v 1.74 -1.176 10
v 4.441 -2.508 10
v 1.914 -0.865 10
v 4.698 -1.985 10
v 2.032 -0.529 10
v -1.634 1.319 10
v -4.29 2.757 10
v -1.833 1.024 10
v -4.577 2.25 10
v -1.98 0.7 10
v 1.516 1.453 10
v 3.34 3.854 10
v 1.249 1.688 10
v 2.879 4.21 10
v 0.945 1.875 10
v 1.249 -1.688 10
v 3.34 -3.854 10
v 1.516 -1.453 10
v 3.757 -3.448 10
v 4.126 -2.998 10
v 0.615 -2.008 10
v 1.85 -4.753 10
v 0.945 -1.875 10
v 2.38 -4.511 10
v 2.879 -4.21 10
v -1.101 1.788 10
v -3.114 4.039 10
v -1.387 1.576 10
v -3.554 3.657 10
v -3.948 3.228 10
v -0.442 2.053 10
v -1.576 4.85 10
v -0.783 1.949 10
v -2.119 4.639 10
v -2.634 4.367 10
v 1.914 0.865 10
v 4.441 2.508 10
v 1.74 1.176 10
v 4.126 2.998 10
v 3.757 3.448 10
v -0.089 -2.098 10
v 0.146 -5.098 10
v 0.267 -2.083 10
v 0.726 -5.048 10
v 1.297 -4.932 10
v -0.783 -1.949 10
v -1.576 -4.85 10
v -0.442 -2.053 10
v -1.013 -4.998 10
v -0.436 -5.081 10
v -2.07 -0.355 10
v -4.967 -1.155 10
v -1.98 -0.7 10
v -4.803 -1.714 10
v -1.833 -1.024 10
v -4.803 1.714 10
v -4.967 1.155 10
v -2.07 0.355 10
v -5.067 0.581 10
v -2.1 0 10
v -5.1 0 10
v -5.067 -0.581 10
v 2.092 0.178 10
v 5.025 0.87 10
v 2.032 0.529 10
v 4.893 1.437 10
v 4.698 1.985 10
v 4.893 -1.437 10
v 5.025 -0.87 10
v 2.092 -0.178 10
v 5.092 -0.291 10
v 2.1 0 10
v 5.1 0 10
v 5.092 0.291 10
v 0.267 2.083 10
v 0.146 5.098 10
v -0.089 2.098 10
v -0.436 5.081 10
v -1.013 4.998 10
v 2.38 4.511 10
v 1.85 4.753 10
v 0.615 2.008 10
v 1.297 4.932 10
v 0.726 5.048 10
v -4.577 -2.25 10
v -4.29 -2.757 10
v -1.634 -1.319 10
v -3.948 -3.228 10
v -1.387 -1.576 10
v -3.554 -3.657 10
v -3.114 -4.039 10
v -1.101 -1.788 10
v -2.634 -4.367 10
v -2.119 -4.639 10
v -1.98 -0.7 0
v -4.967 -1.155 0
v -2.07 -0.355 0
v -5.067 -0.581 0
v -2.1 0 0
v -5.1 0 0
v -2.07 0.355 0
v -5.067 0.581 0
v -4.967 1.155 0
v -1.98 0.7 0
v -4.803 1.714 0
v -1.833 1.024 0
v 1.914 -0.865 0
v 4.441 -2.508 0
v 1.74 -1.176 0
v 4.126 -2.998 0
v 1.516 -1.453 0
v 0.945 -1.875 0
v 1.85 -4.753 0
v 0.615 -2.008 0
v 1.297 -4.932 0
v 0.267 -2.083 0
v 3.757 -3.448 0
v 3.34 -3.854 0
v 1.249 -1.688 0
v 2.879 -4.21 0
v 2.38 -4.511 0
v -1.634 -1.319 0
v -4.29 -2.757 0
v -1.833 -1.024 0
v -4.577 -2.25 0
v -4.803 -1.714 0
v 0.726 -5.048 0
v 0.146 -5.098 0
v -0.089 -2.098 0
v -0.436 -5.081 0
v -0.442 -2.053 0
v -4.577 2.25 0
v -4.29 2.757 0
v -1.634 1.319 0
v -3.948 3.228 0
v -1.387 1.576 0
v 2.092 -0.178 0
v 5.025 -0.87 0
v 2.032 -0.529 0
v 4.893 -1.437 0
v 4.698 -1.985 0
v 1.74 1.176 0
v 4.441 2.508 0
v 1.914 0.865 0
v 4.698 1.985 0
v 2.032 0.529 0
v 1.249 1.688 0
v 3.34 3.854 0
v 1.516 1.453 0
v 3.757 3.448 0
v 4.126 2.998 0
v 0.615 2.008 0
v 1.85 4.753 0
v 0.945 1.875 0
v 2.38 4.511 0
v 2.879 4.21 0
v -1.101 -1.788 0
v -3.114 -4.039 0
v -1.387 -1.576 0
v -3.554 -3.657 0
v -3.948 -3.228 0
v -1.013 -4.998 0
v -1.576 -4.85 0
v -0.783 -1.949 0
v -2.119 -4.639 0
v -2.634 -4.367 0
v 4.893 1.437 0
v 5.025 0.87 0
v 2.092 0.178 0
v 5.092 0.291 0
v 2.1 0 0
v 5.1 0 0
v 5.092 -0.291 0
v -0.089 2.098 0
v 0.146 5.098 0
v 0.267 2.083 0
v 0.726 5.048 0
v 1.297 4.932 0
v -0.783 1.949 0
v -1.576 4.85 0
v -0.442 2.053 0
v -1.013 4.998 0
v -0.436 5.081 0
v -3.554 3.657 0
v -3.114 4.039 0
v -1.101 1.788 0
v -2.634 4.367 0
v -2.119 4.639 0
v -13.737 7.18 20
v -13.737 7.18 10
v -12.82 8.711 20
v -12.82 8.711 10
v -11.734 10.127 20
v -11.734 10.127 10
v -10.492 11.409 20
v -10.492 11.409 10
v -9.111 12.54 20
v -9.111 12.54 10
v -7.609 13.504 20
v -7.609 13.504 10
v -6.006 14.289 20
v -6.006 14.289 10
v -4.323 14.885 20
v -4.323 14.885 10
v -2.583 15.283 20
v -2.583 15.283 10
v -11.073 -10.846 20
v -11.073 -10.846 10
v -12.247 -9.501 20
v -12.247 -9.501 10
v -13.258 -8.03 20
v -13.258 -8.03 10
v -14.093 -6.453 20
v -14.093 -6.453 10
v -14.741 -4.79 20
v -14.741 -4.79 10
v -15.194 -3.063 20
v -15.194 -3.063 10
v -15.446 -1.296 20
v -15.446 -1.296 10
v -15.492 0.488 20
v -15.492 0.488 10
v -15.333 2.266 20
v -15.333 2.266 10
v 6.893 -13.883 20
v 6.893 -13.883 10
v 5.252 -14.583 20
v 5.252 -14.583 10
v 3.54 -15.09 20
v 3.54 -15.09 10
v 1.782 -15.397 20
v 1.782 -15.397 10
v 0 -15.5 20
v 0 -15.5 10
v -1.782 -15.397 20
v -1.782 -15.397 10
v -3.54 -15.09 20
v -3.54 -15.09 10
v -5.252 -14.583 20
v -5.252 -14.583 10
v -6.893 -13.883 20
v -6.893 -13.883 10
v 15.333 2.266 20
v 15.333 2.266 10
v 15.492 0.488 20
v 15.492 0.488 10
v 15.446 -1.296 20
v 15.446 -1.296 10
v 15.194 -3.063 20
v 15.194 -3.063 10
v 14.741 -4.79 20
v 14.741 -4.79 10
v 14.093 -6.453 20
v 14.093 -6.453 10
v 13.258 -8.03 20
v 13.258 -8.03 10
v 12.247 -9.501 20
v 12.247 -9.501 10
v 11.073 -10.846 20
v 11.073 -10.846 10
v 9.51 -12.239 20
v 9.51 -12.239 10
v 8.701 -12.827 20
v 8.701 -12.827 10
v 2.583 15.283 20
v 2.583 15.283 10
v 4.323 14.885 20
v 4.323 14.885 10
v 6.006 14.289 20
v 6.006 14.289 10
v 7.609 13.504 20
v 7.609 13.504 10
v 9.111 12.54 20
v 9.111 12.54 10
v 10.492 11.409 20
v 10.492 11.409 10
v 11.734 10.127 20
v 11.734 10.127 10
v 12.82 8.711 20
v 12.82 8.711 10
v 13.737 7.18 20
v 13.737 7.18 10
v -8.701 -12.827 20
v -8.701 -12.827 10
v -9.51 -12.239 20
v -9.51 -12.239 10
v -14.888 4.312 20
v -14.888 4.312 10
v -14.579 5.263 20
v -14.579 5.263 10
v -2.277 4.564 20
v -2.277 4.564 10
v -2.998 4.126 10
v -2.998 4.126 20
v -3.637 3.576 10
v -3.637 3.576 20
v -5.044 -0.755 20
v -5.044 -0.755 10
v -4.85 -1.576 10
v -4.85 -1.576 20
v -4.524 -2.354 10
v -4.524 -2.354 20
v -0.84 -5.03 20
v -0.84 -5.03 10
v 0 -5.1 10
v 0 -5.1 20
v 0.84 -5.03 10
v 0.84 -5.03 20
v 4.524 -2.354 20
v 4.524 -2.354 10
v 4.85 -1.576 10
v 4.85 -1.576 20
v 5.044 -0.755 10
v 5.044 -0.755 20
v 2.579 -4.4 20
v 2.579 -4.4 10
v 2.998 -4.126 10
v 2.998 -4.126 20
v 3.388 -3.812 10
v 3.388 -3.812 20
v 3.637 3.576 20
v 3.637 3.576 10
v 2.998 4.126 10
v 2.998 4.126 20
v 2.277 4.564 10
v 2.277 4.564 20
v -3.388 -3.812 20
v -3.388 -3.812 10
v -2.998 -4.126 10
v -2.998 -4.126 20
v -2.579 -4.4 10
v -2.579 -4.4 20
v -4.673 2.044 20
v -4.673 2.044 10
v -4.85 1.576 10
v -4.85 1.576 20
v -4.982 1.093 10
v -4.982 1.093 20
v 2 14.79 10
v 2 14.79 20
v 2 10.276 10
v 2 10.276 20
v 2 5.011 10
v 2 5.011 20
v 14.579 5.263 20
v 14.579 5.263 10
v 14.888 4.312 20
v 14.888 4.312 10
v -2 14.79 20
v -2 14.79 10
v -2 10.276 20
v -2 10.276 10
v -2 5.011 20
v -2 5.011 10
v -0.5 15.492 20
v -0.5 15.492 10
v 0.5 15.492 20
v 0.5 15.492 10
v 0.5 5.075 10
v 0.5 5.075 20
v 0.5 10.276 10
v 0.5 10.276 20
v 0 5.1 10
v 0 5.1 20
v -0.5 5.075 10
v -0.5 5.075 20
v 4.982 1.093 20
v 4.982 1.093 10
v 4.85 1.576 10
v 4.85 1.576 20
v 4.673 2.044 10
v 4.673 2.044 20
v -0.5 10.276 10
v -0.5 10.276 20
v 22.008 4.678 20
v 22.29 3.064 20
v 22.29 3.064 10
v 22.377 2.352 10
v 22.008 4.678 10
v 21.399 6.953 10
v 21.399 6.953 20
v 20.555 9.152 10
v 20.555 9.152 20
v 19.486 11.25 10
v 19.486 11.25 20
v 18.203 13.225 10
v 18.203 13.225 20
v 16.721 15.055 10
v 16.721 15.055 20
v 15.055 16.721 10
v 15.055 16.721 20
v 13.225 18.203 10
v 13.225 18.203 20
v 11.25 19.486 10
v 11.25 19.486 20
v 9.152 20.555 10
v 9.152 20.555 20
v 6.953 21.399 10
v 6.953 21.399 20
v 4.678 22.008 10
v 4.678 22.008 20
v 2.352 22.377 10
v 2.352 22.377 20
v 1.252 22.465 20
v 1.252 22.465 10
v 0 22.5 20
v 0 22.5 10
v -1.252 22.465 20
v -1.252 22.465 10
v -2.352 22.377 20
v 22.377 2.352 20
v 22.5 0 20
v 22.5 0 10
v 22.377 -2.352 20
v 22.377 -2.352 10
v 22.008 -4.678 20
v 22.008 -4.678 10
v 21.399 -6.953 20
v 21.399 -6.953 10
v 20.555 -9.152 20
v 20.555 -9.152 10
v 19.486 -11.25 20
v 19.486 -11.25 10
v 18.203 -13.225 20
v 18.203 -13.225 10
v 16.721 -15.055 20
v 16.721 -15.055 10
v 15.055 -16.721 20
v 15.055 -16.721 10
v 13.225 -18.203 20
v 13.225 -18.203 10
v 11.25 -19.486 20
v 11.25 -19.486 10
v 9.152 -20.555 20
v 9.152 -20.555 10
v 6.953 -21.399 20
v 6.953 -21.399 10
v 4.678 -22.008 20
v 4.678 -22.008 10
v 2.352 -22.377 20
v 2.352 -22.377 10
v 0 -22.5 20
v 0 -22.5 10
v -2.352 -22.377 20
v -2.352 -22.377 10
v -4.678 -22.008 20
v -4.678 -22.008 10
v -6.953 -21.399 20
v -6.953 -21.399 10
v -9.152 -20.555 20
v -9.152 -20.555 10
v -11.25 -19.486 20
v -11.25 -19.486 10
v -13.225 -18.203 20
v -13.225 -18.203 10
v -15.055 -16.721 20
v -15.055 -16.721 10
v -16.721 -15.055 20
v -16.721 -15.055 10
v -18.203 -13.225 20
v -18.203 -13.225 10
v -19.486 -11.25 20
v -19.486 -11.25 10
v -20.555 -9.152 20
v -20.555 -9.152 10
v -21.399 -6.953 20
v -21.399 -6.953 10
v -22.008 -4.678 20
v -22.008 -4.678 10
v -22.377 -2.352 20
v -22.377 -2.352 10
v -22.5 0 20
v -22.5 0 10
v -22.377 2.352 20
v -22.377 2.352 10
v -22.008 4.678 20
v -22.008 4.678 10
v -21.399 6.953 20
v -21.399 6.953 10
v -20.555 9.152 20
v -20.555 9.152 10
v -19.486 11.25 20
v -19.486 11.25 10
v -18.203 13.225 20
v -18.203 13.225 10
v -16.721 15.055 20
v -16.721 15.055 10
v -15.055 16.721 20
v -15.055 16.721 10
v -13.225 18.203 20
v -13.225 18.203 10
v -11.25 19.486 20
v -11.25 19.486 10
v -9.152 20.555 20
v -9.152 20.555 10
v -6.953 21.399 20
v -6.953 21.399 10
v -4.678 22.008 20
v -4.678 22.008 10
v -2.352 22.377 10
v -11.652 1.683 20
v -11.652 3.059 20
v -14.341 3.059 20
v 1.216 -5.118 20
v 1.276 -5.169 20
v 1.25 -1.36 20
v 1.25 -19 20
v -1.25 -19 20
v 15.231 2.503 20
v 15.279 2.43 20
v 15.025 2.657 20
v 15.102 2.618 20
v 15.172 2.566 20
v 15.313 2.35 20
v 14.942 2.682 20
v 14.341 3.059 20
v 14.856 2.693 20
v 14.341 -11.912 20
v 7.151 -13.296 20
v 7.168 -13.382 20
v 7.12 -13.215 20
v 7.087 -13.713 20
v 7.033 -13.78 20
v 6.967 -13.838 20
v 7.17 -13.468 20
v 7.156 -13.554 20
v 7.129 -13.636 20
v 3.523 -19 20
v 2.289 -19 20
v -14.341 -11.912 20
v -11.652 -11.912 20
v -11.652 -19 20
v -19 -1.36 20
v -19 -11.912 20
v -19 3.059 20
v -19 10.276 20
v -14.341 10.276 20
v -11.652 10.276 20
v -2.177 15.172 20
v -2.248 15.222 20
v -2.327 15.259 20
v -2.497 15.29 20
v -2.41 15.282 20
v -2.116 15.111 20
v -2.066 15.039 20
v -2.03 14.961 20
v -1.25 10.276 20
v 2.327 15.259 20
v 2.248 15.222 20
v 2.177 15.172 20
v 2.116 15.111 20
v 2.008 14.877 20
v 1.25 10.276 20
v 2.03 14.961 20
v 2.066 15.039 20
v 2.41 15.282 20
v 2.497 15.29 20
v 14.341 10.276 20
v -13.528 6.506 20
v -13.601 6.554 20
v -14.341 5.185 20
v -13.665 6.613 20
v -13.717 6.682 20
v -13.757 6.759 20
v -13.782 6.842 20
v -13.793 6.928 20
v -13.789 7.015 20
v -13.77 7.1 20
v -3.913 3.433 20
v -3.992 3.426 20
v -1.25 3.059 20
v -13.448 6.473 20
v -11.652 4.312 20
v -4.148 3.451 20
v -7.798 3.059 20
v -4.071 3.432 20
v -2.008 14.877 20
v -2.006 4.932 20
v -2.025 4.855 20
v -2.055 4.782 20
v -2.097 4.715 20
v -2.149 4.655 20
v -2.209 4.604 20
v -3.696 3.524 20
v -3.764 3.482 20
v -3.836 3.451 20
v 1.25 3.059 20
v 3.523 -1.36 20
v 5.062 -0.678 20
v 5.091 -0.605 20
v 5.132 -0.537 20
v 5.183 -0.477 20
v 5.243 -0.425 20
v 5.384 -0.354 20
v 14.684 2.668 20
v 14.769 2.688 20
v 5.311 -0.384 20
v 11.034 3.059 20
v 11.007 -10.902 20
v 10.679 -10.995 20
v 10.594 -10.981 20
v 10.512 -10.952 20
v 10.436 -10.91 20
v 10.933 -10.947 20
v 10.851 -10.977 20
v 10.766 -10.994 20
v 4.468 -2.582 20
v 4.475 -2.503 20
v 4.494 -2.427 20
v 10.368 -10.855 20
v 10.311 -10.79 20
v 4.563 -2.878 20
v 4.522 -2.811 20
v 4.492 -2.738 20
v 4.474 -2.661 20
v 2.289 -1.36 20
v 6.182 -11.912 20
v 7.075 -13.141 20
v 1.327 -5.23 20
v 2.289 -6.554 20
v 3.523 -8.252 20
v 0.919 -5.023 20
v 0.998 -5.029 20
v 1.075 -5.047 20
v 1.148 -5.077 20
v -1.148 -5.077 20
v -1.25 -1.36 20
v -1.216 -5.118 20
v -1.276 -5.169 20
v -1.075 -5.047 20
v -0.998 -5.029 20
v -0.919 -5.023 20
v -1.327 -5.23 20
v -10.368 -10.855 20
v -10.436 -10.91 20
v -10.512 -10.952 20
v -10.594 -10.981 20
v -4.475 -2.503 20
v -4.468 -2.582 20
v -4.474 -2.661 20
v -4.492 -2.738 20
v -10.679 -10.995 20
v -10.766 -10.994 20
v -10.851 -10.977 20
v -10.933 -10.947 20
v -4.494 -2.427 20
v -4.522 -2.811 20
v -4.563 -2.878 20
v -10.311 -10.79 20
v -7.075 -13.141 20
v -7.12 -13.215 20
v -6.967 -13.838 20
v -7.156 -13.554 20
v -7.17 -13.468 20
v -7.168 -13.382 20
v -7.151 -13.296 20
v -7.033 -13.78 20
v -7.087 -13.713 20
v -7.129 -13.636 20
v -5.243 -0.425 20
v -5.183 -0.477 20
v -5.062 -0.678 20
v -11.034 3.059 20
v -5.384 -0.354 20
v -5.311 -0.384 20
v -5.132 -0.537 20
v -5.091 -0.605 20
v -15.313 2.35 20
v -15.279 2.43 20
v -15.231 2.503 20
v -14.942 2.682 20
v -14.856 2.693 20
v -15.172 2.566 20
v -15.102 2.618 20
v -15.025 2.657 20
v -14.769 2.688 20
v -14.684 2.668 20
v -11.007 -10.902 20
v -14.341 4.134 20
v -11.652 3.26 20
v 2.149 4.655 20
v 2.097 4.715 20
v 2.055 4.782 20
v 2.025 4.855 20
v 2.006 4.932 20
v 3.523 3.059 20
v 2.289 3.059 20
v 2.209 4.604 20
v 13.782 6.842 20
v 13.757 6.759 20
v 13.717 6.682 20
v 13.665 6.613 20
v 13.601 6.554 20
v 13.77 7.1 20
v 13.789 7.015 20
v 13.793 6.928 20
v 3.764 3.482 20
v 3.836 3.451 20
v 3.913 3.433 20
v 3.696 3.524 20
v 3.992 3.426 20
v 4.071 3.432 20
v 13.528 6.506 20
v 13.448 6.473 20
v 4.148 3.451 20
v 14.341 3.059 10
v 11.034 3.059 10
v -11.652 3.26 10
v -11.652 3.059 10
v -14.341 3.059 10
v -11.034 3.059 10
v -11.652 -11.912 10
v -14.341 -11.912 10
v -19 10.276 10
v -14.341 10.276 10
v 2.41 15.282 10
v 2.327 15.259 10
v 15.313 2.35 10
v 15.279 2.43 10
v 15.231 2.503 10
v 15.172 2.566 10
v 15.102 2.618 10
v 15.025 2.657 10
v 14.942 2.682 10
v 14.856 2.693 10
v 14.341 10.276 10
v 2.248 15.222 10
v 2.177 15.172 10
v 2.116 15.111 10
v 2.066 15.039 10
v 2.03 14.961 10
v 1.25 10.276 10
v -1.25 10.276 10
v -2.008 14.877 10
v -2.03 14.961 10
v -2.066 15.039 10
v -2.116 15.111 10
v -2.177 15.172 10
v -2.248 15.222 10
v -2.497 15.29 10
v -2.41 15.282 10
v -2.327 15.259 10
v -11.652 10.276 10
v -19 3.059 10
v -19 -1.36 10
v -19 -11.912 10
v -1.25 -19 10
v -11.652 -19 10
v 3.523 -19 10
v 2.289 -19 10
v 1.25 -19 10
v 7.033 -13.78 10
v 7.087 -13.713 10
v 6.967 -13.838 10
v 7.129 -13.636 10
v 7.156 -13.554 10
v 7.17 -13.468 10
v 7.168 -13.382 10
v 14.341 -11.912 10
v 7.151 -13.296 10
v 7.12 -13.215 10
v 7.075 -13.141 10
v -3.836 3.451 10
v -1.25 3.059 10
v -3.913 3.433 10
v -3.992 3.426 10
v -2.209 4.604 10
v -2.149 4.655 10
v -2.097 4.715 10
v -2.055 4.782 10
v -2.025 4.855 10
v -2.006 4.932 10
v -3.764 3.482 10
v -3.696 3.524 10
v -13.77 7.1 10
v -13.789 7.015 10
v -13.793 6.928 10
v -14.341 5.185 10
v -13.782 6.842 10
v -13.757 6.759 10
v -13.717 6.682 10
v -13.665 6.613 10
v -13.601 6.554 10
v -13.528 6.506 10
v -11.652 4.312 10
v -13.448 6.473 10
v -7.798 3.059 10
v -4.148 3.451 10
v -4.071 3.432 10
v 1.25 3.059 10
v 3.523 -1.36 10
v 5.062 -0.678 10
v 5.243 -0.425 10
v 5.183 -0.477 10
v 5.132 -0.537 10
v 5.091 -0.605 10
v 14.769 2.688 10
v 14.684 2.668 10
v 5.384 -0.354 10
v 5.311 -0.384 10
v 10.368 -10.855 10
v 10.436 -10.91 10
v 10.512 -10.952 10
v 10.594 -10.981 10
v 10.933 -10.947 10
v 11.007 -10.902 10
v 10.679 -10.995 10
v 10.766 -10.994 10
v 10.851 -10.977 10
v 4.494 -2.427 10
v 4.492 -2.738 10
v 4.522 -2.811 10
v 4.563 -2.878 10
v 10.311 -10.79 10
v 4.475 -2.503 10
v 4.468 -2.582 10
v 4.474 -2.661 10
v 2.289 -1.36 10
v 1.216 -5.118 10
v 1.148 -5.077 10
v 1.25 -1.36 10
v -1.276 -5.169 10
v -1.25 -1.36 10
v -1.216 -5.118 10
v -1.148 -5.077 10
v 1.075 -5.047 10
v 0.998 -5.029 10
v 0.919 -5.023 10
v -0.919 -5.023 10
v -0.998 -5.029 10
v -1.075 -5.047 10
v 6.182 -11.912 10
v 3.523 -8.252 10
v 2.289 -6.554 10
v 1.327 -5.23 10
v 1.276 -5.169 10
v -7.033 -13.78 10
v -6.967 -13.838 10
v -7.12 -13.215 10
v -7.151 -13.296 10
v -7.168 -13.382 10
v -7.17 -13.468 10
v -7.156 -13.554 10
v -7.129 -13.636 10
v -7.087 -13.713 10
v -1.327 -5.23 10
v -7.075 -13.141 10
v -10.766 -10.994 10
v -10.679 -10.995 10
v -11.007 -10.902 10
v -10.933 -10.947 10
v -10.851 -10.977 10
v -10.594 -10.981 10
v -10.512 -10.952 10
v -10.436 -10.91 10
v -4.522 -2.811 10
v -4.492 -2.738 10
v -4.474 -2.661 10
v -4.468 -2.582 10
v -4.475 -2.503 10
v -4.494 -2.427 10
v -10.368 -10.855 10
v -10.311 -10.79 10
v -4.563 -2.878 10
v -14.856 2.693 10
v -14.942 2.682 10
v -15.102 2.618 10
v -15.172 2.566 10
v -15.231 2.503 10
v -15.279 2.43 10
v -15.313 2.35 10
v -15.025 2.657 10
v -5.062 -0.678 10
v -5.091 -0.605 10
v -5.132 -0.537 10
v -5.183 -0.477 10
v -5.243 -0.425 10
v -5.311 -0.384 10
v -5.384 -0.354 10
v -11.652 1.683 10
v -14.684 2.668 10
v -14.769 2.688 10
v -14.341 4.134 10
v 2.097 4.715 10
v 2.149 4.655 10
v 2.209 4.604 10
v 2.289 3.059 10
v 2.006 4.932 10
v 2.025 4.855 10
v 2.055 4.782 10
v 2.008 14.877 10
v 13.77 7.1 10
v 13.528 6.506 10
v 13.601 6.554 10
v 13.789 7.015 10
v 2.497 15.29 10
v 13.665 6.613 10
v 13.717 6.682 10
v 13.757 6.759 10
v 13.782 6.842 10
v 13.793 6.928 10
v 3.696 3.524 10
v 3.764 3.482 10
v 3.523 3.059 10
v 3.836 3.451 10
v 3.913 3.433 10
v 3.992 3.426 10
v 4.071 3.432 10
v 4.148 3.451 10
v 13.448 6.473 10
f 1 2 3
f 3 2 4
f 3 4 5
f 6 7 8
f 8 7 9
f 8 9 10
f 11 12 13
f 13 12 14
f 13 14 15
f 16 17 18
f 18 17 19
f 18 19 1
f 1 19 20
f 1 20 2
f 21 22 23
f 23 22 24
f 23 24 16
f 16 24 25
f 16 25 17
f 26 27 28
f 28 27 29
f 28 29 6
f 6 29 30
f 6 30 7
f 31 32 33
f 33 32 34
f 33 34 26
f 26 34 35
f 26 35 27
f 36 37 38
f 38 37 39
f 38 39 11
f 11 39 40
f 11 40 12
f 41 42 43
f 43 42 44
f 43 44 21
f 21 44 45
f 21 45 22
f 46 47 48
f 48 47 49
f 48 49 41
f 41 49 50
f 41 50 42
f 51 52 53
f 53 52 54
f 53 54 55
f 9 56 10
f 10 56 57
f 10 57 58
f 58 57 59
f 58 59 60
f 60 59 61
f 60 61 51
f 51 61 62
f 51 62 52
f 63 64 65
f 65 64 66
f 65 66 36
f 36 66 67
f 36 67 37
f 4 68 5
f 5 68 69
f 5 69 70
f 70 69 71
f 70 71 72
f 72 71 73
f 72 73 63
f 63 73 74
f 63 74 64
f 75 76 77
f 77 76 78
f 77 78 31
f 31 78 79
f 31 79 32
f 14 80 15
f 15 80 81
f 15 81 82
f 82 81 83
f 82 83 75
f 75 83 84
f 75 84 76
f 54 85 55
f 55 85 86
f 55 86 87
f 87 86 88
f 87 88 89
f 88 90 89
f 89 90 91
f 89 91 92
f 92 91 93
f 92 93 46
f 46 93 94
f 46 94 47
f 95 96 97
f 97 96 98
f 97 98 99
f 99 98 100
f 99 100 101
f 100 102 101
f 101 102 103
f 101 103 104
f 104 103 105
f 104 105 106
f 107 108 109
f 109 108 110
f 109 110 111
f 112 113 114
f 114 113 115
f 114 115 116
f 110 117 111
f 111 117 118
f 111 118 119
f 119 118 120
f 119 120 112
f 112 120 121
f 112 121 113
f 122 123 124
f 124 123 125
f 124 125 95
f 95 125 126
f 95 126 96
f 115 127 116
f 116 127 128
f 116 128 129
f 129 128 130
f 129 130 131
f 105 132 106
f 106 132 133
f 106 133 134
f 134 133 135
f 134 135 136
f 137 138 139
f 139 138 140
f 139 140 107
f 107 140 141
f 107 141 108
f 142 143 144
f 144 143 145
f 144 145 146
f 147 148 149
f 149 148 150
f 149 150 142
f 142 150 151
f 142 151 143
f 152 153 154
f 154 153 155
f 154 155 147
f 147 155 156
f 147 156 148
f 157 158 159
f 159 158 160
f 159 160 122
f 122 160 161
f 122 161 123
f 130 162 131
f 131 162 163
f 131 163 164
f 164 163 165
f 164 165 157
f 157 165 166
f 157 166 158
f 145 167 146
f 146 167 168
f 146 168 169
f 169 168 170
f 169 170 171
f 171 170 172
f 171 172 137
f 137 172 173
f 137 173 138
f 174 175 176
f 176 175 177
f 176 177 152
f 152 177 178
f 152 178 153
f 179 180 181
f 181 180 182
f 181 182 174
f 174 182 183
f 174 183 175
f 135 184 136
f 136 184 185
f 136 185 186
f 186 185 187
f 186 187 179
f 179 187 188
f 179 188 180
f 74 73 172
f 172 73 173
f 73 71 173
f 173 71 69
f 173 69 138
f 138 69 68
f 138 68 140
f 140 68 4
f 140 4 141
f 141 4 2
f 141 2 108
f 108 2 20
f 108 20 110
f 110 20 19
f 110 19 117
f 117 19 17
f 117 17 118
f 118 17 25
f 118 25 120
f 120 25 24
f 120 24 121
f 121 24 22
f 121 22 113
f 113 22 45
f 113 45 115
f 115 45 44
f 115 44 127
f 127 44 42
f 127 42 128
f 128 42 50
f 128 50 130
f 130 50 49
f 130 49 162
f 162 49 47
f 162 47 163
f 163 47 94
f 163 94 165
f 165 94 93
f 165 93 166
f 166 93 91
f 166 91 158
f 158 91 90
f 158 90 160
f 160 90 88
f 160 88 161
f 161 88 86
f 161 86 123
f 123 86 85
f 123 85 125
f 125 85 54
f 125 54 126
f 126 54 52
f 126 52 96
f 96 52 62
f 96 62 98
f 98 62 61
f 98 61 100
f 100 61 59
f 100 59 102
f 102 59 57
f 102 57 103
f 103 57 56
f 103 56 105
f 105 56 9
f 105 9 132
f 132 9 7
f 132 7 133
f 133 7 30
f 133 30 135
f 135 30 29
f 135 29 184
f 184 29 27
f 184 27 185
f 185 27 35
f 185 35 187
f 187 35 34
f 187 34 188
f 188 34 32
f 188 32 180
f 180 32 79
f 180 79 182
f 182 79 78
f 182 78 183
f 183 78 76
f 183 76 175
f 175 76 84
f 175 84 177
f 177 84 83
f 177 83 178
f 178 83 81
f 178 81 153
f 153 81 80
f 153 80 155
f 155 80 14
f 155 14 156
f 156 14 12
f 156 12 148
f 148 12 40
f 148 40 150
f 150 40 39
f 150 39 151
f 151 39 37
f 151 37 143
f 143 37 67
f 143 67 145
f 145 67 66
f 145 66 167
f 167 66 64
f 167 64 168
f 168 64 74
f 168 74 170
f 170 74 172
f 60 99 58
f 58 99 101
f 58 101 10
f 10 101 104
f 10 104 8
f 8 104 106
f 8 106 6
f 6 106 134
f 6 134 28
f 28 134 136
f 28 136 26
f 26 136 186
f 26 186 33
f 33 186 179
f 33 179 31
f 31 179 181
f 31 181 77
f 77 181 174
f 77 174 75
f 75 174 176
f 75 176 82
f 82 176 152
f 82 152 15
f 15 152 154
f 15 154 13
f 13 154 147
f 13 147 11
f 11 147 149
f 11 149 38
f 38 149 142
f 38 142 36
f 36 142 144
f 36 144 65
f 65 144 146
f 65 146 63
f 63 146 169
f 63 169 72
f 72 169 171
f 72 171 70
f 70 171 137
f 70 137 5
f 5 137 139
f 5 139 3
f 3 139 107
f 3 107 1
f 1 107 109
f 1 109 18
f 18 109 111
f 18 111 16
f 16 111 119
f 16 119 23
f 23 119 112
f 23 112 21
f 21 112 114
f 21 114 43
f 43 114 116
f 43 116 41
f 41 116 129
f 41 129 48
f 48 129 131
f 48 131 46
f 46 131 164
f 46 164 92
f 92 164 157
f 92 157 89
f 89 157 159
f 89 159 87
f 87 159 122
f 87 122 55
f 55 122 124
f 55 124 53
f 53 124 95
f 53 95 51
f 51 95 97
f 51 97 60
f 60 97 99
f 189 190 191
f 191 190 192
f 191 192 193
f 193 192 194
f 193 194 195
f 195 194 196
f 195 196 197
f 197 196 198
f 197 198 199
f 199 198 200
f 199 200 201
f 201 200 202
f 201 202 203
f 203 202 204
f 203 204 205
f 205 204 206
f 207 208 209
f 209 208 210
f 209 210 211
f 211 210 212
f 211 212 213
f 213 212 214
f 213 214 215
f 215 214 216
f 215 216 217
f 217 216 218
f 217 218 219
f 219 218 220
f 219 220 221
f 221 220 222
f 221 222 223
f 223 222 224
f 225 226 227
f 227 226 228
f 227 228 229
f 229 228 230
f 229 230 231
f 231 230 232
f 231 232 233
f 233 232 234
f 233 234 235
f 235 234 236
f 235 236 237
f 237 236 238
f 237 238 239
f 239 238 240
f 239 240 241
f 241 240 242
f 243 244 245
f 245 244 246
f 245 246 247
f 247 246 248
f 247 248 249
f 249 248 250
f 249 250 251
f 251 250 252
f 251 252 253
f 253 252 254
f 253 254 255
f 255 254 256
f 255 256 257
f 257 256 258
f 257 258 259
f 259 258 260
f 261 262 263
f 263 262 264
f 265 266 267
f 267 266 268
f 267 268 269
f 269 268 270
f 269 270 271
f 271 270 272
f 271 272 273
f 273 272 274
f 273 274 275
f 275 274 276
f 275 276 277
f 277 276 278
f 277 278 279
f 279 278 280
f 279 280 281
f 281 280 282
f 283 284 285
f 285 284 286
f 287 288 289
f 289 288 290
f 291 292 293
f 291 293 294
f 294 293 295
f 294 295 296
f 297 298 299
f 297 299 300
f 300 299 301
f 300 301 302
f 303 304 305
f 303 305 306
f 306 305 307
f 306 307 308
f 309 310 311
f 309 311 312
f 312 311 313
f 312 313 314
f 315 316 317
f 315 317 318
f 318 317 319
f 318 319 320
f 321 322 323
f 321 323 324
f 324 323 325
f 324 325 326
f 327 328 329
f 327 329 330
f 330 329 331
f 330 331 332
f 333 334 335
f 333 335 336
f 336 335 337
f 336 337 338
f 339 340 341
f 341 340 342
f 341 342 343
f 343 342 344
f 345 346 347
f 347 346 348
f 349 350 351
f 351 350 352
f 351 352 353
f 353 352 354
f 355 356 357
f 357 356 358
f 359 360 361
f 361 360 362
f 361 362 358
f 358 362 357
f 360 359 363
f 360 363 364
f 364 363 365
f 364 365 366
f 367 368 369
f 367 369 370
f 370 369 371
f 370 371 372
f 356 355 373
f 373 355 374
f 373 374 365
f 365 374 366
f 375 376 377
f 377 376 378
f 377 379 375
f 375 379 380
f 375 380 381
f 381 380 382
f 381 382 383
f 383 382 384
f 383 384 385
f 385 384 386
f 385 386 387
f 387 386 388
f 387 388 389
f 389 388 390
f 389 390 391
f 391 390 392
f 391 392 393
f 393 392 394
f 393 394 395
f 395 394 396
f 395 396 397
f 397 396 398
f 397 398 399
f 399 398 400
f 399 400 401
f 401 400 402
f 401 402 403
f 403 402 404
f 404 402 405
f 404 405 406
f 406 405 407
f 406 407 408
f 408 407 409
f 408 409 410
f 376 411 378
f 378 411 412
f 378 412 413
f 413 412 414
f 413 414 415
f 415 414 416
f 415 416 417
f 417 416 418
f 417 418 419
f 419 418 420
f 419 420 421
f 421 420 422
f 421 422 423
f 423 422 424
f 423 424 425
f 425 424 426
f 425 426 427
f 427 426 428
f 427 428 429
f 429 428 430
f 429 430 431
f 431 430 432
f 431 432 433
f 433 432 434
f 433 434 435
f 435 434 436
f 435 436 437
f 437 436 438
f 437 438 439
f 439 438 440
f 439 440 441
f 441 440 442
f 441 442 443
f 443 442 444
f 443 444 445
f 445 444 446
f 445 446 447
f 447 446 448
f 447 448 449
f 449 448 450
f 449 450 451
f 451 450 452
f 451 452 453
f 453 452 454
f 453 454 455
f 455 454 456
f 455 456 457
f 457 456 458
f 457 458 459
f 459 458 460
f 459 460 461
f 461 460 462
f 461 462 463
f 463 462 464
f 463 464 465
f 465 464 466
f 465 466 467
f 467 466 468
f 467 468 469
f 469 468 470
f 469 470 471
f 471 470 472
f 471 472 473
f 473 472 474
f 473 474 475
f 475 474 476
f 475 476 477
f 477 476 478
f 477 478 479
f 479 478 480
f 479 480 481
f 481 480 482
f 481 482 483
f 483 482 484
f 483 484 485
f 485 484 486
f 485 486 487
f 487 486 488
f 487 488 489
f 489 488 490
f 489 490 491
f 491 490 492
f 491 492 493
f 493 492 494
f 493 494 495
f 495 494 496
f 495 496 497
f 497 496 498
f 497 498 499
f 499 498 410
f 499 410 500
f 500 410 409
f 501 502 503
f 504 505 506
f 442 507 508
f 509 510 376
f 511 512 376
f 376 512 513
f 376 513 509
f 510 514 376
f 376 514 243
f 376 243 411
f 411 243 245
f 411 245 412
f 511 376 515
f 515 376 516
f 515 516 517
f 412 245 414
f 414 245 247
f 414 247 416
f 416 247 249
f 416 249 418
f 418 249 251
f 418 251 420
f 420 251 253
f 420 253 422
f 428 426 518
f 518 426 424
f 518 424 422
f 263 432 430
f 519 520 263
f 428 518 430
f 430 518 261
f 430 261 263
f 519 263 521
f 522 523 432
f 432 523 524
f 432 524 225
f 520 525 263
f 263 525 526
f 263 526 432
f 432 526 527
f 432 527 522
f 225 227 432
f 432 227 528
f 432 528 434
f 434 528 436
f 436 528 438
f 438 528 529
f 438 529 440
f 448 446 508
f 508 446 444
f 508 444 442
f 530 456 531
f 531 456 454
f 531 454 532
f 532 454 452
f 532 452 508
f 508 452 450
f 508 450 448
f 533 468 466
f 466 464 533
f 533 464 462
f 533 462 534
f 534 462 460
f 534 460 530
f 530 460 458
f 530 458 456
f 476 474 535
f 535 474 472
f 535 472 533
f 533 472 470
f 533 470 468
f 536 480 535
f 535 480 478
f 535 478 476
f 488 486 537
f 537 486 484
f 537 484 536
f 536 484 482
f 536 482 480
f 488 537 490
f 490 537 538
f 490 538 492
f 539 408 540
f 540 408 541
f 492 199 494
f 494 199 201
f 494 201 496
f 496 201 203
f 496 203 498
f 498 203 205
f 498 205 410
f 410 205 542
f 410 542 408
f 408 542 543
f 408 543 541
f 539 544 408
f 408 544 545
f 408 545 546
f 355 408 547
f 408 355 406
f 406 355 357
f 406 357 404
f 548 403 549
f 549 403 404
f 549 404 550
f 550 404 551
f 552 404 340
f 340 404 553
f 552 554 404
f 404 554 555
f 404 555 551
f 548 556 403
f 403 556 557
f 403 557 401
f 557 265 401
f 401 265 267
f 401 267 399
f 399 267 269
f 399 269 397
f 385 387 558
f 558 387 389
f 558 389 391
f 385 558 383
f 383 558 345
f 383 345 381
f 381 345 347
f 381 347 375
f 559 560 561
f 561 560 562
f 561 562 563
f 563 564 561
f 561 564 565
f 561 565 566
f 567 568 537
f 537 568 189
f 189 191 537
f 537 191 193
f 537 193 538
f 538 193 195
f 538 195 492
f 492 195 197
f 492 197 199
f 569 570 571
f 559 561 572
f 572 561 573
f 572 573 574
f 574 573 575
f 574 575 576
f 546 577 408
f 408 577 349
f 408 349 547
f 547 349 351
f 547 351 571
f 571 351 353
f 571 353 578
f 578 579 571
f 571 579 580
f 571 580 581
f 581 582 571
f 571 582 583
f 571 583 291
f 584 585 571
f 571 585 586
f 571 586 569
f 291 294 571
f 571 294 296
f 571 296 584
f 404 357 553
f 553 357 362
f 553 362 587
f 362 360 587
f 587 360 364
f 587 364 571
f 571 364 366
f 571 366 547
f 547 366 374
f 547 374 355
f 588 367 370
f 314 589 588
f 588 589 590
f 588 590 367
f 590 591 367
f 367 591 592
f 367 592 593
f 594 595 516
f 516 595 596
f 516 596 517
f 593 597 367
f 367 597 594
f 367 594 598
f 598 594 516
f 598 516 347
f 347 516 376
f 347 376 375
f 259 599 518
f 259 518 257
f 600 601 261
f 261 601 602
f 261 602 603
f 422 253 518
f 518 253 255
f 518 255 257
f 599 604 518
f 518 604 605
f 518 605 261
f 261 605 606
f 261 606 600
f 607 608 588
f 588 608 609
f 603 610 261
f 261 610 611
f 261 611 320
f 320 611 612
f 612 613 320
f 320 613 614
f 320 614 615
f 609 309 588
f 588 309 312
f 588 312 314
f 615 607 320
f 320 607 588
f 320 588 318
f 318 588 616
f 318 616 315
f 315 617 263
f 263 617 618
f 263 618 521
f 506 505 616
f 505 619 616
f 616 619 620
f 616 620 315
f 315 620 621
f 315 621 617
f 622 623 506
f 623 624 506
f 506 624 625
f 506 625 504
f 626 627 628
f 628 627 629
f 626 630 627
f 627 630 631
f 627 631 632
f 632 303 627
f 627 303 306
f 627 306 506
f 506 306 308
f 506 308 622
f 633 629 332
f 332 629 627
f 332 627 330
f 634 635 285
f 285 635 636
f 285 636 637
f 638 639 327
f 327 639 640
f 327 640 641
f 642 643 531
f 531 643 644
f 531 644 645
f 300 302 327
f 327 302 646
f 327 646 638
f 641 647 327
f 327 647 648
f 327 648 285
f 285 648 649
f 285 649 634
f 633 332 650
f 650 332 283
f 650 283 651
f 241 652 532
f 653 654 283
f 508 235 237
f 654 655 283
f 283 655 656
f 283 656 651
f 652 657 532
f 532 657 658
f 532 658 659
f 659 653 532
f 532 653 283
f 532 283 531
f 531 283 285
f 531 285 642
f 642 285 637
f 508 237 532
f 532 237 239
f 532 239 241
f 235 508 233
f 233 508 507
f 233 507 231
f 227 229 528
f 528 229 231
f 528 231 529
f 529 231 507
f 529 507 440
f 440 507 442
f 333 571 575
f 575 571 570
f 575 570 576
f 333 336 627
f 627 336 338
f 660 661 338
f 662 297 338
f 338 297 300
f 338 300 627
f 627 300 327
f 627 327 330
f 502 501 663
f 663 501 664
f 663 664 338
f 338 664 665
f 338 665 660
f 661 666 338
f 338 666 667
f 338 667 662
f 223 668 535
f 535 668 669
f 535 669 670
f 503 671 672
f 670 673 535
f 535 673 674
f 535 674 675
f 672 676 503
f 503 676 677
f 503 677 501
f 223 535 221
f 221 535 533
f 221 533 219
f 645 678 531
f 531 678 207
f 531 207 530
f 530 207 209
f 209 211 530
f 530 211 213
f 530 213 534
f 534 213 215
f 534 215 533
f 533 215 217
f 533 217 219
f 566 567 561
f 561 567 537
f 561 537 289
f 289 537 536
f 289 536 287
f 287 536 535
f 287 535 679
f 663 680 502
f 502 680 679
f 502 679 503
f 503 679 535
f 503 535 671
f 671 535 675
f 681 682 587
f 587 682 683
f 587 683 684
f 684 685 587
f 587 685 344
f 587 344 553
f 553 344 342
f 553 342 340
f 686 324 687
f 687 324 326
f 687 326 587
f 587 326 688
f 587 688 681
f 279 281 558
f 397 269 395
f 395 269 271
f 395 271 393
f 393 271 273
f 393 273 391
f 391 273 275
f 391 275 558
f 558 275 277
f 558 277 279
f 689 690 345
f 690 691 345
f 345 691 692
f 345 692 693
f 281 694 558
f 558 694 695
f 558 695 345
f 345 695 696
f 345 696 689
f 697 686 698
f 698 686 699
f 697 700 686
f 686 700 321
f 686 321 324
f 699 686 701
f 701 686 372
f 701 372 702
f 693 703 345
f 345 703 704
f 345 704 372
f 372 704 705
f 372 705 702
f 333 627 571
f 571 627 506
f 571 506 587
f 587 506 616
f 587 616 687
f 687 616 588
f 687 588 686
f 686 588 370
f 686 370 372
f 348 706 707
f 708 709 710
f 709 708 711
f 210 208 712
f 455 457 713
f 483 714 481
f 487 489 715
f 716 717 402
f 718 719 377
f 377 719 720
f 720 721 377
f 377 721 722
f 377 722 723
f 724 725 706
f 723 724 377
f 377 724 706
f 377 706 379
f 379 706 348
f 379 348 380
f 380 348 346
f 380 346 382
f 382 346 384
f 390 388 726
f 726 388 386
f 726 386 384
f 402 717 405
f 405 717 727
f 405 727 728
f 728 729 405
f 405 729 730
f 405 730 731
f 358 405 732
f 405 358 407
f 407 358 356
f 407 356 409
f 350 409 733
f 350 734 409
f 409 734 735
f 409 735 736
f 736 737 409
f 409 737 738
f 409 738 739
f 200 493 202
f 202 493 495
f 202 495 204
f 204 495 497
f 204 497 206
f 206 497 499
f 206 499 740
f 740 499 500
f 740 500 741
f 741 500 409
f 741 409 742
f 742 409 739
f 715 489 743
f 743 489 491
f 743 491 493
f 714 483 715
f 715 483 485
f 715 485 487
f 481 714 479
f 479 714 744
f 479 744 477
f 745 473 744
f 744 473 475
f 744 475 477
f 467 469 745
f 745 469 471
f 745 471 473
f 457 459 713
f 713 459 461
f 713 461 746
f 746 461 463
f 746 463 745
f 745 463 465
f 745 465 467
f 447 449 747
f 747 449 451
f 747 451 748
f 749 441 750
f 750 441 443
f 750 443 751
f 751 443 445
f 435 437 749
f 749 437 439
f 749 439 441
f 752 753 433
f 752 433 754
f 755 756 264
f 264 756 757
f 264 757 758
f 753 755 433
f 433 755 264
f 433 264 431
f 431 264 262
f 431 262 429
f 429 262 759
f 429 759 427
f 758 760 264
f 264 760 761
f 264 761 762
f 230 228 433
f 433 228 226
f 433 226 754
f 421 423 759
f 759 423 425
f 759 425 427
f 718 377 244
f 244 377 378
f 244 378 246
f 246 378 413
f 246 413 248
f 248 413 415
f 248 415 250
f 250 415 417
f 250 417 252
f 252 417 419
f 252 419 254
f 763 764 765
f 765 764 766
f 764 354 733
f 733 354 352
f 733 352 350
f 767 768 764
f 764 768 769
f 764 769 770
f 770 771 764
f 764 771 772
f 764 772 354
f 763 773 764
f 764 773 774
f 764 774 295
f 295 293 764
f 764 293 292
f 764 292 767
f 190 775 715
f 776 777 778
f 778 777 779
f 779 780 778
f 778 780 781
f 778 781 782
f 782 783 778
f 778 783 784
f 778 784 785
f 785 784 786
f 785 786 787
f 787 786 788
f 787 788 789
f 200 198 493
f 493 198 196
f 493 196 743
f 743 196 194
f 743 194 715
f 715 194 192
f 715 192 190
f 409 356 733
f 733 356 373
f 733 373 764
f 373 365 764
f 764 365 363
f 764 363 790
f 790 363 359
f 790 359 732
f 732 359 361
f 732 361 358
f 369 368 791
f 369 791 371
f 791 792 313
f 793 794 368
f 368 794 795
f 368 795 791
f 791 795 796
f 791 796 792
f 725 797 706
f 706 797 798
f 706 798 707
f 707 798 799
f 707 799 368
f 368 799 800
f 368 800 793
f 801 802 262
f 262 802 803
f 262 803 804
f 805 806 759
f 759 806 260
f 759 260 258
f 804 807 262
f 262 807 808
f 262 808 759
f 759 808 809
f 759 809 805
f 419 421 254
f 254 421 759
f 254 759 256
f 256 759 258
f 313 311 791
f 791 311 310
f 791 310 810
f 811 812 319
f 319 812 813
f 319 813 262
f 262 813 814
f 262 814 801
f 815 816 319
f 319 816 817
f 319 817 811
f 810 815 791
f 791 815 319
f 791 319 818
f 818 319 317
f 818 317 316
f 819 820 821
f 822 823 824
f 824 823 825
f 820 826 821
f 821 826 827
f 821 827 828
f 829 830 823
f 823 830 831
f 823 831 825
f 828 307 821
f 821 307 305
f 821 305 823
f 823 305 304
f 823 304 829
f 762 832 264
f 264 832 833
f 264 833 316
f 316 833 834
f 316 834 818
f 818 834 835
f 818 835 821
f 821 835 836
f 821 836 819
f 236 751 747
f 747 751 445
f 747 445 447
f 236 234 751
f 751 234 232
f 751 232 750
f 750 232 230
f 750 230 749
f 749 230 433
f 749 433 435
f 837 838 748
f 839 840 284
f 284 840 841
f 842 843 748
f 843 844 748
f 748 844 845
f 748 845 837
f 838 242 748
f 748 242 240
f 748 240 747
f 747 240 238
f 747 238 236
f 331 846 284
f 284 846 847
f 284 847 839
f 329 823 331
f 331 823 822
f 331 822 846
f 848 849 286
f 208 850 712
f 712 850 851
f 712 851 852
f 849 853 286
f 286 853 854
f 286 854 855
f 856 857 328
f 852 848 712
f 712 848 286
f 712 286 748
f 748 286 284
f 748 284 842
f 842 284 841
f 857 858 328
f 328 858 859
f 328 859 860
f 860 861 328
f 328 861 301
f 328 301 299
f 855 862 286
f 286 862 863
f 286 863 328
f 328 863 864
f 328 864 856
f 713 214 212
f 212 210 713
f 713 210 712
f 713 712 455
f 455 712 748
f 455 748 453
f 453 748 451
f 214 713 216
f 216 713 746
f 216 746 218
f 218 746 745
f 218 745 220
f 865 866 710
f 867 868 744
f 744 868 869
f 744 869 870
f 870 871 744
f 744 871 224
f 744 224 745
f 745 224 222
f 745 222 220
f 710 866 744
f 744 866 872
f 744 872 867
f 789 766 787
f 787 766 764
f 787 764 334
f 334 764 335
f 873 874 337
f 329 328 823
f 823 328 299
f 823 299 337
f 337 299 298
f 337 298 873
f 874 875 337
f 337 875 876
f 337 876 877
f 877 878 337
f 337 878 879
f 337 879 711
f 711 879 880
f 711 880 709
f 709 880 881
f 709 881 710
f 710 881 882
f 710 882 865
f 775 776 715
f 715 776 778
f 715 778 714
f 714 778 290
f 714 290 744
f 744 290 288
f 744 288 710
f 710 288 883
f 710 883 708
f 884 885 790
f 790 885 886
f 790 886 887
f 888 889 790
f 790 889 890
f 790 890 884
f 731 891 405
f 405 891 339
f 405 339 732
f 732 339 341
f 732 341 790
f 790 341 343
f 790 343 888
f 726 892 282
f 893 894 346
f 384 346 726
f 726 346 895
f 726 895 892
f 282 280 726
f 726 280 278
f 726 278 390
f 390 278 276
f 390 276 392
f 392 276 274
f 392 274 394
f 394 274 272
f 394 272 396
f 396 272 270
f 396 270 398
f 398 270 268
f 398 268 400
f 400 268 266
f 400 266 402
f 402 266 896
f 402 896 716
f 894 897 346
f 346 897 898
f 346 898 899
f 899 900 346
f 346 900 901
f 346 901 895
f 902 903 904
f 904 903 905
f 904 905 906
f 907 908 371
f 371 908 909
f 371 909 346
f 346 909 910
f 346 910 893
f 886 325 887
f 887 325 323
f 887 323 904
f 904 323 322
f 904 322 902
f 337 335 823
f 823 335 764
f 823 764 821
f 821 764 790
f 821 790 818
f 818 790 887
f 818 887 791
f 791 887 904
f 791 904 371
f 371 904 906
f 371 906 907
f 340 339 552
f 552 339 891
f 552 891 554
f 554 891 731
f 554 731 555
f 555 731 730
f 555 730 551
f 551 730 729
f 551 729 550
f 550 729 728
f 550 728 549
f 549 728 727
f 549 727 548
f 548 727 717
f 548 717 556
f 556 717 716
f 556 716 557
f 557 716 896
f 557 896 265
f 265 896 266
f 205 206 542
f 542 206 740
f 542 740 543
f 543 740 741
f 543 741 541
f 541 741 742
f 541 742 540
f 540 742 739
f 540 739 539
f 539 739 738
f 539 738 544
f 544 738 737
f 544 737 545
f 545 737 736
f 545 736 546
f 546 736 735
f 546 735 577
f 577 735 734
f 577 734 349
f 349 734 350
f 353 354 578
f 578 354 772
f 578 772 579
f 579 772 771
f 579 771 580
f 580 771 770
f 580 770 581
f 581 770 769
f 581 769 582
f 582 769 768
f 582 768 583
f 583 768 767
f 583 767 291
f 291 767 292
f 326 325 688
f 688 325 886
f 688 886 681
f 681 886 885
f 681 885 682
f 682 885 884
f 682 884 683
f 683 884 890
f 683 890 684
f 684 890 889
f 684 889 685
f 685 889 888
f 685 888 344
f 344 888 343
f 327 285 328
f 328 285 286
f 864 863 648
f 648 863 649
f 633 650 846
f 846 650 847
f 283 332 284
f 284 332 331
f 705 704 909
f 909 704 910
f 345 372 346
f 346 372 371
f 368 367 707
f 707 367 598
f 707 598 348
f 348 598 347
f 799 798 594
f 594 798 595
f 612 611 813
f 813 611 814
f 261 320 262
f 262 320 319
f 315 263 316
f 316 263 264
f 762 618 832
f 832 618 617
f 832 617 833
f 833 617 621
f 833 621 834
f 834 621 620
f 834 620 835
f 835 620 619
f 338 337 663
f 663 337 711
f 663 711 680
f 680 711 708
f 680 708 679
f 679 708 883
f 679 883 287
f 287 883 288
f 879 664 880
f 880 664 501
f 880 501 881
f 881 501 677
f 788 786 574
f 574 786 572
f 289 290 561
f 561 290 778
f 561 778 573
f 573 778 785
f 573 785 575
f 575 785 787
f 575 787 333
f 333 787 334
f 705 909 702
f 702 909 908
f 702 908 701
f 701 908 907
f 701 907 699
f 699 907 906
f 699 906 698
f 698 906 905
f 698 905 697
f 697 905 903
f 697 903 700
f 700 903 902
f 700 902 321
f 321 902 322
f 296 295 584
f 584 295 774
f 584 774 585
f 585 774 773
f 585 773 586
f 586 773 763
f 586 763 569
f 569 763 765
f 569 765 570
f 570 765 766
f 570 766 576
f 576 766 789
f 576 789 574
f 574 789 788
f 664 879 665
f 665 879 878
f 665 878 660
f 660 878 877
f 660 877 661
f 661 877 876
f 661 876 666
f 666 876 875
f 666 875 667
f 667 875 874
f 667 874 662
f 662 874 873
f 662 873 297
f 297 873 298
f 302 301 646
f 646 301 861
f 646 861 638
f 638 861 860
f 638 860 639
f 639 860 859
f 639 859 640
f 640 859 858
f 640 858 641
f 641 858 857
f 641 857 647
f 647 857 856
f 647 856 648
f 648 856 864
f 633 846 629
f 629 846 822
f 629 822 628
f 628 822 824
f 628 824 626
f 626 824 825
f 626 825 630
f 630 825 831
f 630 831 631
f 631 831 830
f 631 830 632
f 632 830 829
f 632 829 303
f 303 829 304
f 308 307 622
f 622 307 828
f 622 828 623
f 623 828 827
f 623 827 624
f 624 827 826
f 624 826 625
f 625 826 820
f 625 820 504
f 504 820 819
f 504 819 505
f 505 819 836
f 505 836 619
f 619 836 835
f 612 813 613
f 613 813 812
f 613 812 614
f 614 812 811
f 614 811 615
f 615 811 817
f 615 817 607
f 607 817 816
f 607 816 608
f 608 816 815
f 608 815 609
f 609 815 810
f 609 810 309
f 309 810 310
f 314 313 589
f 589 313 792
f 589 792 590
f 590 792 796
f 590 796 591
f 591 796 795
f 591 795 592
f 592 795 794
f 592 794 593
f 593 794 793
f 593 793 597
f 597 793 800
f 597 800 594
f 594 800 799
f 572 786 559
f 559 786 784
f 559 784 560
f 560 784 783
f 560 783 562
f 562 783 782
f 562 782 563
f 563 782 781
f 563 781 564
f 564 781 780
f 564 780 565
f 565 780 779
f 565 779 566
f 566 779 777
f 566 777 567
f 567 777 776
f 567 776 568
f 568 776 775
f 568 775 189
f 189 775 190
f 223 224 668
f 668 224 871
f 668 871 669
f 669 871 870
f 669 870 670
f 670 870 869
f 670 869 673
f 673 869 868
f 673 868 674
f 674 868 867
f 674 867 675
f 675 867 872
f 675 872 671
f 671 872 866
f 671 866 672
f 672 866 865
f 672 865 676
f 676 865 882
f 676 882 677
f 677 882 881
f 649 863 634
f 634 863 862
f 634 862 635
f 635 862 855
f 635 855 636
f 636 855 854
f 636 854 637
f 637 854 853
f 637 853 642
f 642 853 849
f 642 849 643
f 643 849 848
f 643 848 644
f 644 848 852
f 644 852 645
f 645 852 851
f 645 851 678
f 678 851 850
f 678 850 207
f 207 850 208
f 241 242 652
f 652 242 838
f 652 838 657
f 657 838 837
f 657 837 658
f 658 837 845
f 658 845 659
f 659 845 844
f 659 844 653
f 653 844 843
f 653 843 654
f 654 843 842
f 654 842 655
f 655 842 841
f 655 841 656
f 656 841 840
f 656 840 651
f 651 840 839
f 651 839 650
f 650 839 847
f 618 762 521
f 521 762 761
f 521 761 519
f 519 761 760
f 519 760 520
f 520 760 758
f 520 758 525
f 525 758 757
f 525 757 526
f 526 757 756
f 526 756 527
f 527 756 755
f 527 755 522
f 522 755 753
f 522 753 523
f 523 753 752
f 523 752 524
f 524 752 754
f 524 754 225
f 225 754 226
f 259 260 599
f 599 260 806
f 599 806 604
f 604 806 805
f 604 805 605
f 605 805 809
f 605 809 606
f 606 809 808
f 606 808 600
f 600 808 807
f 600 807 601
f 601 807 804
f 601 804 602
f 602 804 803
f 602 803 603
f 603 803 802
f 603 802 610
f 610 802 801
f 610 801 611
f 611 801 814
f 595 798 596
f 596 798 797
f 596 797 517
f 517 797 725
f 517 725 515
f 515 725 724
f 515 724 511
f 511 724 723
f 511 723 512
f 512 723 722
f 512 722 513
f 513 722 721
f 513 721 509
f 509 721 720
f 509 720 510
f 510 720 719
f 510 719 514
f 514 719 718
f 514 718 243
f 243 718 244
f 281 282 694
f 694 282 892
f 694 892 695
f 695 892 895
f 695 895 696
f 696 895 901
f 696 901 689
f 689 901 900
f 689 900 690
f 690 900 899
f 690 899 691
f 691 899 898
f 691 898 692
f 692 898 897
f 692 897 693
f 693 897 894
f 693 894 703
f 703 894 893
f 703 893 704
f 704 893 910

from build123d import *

# Parameters (mm, degrees)
ESQUISSE1_R                  = 5.1
ESQUISSE1_R_2                = 2.1
BOSS_EXTRU_1_DEPTH           = 10
ESQUISSE2_R                  = 22.5
BOSS_EXTRU_3_DEPTH           = 10
CONG_5_R                     = 0.5
R_P_TITION_CIRCULAIRE2_COUNT = 5
CONG_6_R                     = 0.5


with BuildPart() as part:
    # Esquisse1 → Boss.-Extru.1 (new body)
    with BuildSketch(Plane.XY):
        Circle(ESQUISSE1_R)
        Circle(ESQUISSE1_R_2, mode=Mode.SUBTRACT)
    extrude(amount=BOSS_EXTRU_1_DEPTH)


with BuildPart() as body_2:
    # Esquisse2 → Boss.-Extru.3 (new body)
    with BuildSketch(Plane.XY.offset(10)):
        Circle(ESQUISSE2_R)
        with BuildLine():
            Line((2, 4.691481642), (2, 15.370426149))
            ThreePointArc((2, 15.370426149), (0, -15.5), (-2, 15.370426149))
            Line((-2, 15.370426149), (-2, 4.691481642))
            ThreePointArc((-2, 4.691481642), (0, -5.1), (2, 4.691481642))
        make_face(mode=Mode.SUBTRACT)
        with BuildLine():
            Line((-0.5, 5.075431016), (-0.5, 15.491933385))
            ThreePointArc((-0.5, 15.491933385), (0, 15.5), (0.5, 15.491933385))
            Line((0.5, 15.491933385), (0.5, 5.075431016))
            ThreePointArc((0.5, 5.075431016), (0, 5.1), (-0.5, 5.075431016))
        make_face(mode=Mode.SUBTRACT)
    boss_extru_3 = extrude(amount=BOSS_EXTRU_3_DEPTH)

    # Congé5
    cong_5_edges = [body_2.edges().sort_by_distance(p)[0] for p in [
        (2, 4.691481642, 15),
        (-2, 4.691481642, 15),
        (-2, 15.370426149, 15),
        (2, 15.370426149, 15),
    ]]
    fillet(cong_5_edges, radius=CONG_5_R)

    # Répétition circulaire2: Boss.-Extru.3 ×5 about axis
    r_p_tition_circulaire2_axis = Axis((0, 0, 0), (0, 0, 1))
    for i in range(1, R_P_TITION_CIRCULAIRE2_COUNT):
        add(boss_extru_3.rotate(r_p_tition_circulaire2_axis, i * 360 / R_P_TITION_CIRCULAIRE2_COUNT))

    # Congé6
    cong_6_edges = [body_2.edges().sort_by_distance(p)[0] for p in [
        (-14.000109958, 6.651835923, 15),
        (-10.652543801, -11.259365461, 15),
        (7.416475823, -13.61050647, 15),
        (15.236177936, 2.847609858, 15),
        (-5.079898176, -0.452365476, 15),
        (-1.139549732, -4.971058882, 15),
        (3.843830198, 3.351860589, 15),
        (4.375617709, -2.619917873, 15),
        (-3.843830198, 3.351860589, 15),
        (-15.236177936, 2.847609858, 15),
        (1.139549732, -4.971058882, 15),
        (10.652543801, -11.259365461, 15),
        (5.079898176, -0.452365476, 15),
        (14.000109958, 6.651835923, 15),
        (-7.416475823, -13.61050647, 15),
        (-4.375617709, -2.619917873, 15),
    ]]
    fillet(cong_6_edges, radius=CONG_6_R)


solid = Compound([part.part, body_2.part])
